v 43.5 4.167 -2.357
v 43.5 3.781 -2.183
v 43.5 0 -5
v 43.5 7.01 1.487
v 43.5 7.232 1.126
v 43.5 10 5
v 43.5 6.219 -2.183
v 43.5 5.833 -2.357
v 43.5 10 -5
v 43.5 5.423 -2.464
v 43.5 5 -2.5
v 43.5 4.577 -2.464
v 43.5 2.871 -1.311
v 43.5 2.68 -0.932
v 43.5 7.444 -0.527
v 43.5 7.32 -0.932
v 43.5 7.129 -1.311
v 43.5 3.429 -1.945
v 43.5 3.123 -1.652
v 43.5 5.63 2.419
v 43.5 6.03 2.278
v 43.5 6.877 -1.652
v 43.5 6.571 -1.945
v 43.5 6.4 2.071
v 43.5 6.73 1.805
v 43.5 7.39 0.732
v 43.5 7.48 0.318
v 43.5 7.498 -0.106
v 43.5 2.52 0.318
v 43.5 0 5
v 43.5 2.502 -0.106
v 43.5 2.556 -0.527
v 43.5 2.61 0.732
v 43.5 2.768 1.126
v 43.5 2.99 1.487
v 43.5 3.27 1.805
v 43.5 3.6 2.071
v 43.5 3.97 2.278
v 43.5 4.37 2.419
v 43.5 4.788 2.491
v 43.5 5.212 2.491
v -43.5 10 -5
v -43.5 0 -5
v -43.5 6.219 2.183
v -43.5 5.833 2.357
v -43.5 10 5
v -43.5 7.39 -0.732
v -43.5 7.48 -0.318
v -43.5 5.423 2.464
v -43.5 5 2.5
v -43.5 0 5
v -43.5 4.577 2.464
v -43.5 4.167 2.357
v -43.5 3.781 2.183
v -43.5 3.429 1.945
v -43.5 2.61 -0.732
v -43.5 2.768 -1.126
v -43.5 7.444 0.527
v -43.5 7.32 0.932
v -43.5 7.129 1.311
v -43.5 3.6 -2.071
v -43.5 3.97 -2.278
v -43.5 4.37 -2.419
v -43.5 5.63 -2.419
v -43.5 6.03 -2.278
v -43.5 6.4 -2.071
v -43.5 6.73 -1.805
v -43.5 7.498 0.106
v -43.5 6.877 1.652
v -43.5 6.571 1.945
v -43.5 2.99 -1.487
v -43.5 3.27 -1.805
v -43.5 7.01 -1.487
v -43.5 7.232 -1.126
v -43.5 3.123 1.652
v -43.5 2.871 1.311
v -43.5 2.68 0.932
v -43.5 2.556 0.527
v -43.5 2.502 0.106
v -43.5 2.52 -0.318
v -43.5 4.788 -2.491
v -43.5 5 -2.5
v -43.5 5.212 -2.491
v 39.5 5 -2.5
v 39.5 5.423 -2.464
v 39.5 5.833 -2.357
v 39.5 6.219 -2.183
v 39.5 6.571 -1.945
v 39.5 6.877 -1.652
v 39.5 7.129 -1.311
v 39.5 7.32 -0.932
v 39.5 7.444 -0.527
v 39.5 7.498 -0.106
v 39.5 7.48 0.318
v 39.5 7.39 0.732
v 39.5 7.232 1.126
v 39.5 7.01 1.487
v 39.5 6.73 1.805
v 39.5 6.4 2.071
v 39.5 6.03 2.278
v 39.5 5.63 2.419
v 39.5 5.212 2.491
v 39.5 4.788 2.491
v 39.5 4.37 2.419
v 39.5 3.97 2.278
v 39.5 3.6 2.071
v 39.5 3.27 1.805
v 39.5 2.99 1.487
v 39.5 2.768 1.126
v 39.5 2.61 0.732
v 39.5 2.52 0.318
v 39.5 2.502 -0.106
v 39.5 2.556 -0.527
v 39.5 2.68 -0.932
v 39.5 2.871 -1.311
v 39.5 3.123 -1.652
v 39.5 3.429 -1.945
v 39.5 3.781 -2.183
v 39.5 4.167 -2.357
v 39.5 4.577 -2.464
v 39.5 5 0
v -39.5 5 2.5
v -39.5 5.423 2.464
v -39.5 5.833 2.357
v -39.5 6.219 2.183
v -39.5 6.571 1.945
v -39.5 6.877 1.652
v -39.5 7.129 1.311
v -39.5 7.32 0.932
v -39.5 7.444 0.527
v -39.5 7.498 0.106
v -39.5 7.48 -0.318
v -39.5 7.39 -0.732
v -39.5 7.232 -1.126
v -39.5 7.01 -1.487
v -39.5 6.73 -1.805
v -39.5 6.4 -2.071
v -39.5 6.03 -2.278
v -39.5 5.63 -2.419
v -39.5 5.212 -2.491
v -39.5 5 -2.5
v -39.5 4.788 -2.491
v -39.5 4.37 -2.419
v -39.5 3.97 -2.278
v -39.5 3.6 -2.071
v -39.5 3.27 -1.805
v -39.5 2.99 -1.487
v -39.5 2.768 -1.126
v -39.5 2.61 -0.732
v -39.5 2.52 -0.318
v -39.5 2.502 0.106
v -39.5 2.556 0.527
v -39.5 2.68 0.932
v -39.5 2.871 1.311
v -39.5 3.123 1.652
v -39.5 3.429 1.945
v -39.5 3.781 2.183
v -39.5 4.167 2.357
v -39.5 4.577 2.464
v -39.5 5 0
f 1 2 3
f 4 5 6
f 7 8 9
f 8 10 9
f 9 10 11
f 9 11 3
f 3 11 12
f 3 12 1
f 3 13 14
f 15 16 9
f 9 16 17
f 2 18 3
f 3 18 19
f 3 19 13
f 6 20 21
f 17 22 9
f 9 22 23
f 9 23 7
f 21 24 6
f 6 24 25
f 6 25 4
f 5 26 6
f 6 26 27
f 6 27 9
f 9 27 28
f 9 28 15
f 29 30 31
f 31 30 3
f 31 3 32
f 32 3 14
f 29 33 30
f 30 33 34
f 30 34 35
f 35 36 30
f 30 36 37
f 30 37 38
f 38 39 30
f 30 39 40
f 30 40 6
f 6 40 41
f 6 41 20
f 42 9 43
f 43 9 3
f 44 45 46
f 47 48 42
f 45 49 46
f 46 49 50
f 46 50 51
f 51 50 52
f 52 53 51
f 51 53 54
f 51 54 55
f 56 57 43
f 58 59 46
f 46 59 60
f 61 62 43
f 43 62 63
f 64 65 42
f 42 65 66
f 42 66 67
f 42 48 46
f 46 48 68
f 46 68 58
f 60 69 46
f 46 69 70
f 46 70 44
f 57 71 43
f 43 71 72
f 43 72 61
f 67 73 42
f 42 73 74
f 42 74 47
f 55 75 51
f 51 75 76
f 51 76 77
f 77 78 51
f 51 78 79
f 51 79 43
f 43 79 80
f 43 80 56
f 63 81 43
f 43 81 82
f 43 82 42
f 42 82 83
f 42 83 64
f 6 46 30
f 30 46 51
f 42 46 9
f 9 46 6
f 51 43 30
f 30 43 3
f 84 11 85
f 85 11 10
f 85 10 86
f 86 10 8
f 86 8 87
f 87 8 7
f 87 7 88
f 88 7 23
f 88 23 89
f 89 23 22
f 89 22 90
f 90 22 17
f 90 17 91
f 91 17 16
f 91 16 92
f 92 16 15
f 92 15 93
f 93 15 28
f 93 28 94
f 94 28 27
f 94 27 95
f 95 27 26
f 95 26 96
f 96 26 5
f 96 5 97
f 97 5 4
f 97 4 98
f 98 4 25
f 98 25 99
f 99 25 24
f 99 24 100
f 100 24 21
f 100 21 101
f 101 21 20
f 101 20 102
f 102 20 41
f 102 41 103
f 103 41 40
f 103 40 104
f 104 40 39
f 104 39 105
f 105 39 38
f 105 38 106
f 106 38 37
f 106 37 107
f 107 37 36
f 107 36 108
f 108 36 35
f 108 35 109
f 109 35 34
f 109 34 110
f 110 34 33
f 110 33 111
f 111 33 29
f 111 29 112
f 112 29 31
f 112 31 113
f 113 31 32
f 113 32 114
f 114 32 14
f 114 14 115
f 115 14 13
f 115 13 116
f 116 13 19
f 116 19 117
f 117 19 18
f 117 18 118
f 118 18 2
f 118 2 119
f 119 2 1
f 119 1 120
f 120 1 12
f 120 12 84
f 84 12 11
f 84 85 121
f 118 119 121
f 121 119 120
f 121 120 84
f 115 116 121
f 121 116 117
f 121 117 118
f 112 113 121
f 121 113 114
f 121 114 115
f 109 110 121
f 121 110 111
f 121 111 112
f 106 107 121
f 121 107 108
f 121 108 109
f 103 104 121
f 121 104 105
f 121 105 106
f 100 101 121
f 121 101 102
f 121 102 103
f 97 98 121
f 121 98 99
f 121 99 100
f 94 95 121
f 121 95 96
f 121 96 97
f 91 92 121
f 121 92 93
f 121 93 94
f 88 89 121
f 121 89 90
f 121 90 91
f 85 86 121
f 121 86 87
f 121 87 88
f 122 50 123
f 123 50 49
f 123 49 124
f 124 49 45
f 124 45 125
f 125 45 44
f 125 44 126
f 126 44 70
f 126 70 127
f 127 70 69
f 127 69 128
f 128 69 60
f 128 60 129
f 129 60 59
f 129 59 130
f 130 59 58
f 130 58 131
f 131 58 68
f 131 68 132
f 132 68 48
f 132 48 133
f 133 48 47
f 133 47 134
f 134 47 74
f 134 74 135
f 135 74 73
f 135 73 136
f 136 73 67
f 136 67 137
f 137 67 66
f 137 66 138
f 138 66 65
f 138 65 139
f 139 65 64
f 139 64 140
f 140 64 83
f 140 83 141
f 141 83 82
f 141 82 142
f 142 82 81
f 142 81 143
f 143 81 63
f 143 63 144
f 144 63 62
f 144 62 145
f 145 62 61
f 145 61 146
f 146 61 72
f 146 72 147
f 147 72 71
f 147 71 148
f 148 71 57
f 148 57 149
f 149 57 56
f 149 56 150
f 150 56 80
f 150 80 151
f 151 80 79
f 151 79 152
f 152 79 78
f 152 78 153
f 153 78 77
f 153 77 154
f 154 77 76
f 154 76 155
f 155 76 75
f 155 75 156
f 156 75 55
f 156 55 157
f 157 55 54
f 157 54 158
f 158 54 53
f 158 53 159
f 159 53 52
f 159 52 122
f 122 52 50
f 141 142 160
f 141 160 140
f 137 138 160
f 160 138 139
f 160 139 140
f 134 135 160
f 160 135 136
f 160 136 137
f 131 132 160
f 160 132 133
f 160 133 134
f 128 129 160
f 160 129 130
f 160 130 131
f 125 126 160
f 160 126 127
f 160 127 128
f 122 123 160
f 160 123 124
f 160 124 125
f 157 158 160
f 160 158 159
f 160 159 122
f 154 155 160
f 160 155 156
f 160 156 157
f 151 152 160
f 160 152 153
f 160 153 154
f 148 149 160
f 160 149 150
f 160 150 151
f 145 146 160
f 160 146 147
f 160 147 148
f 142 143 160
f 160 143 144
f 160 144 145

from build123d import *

# Parameters (mm, degrees)
SKETCH1_W           = 87
SKETCH1_H           = 10
BOSS_EXTRUDE1_DEPTH = 10
SKETCH2_R           = 2.5
CUT_EXTRUDE1_DEPTH  = 4


with BuildPart() as part:
    # Sketch1 → Boss-Extrude1 (new body)
    with BuildSketch(Plane(origin=(0, 0, 0), x_dir=(1, 0, 0), z_dir=(0, 1, 0))):
        Rectangle(SKETCH1_W, SKETCH1_H)
    extrude(amount=BOSS_EXTRUDE1_DEPTH)

    # Sketch2 → Cut-Extrude1 (cut)
    with BuildSketch(Plane(origin=(43.5, 0, 0), x_dir=(0, 0, -1), z_dir=(1, 0, 0))):
        with Locations((0, 5)):
            Circle(SKETCH2_R)
    cut_extrude1 = extrude(amount=-CUT_EXTRUDE1_DEPTH, mode=Mode.SUBTRACT)

    # Mirror1: Cut-Extrude1 across plane
    add(cut_extrude1.mirror(Plane(origin=(0, 0, 0), x_dir=(0, 0, 1), z_dir=(1, 0, 0))), mode=Mode.SUBTRACT)


solid = part.part
